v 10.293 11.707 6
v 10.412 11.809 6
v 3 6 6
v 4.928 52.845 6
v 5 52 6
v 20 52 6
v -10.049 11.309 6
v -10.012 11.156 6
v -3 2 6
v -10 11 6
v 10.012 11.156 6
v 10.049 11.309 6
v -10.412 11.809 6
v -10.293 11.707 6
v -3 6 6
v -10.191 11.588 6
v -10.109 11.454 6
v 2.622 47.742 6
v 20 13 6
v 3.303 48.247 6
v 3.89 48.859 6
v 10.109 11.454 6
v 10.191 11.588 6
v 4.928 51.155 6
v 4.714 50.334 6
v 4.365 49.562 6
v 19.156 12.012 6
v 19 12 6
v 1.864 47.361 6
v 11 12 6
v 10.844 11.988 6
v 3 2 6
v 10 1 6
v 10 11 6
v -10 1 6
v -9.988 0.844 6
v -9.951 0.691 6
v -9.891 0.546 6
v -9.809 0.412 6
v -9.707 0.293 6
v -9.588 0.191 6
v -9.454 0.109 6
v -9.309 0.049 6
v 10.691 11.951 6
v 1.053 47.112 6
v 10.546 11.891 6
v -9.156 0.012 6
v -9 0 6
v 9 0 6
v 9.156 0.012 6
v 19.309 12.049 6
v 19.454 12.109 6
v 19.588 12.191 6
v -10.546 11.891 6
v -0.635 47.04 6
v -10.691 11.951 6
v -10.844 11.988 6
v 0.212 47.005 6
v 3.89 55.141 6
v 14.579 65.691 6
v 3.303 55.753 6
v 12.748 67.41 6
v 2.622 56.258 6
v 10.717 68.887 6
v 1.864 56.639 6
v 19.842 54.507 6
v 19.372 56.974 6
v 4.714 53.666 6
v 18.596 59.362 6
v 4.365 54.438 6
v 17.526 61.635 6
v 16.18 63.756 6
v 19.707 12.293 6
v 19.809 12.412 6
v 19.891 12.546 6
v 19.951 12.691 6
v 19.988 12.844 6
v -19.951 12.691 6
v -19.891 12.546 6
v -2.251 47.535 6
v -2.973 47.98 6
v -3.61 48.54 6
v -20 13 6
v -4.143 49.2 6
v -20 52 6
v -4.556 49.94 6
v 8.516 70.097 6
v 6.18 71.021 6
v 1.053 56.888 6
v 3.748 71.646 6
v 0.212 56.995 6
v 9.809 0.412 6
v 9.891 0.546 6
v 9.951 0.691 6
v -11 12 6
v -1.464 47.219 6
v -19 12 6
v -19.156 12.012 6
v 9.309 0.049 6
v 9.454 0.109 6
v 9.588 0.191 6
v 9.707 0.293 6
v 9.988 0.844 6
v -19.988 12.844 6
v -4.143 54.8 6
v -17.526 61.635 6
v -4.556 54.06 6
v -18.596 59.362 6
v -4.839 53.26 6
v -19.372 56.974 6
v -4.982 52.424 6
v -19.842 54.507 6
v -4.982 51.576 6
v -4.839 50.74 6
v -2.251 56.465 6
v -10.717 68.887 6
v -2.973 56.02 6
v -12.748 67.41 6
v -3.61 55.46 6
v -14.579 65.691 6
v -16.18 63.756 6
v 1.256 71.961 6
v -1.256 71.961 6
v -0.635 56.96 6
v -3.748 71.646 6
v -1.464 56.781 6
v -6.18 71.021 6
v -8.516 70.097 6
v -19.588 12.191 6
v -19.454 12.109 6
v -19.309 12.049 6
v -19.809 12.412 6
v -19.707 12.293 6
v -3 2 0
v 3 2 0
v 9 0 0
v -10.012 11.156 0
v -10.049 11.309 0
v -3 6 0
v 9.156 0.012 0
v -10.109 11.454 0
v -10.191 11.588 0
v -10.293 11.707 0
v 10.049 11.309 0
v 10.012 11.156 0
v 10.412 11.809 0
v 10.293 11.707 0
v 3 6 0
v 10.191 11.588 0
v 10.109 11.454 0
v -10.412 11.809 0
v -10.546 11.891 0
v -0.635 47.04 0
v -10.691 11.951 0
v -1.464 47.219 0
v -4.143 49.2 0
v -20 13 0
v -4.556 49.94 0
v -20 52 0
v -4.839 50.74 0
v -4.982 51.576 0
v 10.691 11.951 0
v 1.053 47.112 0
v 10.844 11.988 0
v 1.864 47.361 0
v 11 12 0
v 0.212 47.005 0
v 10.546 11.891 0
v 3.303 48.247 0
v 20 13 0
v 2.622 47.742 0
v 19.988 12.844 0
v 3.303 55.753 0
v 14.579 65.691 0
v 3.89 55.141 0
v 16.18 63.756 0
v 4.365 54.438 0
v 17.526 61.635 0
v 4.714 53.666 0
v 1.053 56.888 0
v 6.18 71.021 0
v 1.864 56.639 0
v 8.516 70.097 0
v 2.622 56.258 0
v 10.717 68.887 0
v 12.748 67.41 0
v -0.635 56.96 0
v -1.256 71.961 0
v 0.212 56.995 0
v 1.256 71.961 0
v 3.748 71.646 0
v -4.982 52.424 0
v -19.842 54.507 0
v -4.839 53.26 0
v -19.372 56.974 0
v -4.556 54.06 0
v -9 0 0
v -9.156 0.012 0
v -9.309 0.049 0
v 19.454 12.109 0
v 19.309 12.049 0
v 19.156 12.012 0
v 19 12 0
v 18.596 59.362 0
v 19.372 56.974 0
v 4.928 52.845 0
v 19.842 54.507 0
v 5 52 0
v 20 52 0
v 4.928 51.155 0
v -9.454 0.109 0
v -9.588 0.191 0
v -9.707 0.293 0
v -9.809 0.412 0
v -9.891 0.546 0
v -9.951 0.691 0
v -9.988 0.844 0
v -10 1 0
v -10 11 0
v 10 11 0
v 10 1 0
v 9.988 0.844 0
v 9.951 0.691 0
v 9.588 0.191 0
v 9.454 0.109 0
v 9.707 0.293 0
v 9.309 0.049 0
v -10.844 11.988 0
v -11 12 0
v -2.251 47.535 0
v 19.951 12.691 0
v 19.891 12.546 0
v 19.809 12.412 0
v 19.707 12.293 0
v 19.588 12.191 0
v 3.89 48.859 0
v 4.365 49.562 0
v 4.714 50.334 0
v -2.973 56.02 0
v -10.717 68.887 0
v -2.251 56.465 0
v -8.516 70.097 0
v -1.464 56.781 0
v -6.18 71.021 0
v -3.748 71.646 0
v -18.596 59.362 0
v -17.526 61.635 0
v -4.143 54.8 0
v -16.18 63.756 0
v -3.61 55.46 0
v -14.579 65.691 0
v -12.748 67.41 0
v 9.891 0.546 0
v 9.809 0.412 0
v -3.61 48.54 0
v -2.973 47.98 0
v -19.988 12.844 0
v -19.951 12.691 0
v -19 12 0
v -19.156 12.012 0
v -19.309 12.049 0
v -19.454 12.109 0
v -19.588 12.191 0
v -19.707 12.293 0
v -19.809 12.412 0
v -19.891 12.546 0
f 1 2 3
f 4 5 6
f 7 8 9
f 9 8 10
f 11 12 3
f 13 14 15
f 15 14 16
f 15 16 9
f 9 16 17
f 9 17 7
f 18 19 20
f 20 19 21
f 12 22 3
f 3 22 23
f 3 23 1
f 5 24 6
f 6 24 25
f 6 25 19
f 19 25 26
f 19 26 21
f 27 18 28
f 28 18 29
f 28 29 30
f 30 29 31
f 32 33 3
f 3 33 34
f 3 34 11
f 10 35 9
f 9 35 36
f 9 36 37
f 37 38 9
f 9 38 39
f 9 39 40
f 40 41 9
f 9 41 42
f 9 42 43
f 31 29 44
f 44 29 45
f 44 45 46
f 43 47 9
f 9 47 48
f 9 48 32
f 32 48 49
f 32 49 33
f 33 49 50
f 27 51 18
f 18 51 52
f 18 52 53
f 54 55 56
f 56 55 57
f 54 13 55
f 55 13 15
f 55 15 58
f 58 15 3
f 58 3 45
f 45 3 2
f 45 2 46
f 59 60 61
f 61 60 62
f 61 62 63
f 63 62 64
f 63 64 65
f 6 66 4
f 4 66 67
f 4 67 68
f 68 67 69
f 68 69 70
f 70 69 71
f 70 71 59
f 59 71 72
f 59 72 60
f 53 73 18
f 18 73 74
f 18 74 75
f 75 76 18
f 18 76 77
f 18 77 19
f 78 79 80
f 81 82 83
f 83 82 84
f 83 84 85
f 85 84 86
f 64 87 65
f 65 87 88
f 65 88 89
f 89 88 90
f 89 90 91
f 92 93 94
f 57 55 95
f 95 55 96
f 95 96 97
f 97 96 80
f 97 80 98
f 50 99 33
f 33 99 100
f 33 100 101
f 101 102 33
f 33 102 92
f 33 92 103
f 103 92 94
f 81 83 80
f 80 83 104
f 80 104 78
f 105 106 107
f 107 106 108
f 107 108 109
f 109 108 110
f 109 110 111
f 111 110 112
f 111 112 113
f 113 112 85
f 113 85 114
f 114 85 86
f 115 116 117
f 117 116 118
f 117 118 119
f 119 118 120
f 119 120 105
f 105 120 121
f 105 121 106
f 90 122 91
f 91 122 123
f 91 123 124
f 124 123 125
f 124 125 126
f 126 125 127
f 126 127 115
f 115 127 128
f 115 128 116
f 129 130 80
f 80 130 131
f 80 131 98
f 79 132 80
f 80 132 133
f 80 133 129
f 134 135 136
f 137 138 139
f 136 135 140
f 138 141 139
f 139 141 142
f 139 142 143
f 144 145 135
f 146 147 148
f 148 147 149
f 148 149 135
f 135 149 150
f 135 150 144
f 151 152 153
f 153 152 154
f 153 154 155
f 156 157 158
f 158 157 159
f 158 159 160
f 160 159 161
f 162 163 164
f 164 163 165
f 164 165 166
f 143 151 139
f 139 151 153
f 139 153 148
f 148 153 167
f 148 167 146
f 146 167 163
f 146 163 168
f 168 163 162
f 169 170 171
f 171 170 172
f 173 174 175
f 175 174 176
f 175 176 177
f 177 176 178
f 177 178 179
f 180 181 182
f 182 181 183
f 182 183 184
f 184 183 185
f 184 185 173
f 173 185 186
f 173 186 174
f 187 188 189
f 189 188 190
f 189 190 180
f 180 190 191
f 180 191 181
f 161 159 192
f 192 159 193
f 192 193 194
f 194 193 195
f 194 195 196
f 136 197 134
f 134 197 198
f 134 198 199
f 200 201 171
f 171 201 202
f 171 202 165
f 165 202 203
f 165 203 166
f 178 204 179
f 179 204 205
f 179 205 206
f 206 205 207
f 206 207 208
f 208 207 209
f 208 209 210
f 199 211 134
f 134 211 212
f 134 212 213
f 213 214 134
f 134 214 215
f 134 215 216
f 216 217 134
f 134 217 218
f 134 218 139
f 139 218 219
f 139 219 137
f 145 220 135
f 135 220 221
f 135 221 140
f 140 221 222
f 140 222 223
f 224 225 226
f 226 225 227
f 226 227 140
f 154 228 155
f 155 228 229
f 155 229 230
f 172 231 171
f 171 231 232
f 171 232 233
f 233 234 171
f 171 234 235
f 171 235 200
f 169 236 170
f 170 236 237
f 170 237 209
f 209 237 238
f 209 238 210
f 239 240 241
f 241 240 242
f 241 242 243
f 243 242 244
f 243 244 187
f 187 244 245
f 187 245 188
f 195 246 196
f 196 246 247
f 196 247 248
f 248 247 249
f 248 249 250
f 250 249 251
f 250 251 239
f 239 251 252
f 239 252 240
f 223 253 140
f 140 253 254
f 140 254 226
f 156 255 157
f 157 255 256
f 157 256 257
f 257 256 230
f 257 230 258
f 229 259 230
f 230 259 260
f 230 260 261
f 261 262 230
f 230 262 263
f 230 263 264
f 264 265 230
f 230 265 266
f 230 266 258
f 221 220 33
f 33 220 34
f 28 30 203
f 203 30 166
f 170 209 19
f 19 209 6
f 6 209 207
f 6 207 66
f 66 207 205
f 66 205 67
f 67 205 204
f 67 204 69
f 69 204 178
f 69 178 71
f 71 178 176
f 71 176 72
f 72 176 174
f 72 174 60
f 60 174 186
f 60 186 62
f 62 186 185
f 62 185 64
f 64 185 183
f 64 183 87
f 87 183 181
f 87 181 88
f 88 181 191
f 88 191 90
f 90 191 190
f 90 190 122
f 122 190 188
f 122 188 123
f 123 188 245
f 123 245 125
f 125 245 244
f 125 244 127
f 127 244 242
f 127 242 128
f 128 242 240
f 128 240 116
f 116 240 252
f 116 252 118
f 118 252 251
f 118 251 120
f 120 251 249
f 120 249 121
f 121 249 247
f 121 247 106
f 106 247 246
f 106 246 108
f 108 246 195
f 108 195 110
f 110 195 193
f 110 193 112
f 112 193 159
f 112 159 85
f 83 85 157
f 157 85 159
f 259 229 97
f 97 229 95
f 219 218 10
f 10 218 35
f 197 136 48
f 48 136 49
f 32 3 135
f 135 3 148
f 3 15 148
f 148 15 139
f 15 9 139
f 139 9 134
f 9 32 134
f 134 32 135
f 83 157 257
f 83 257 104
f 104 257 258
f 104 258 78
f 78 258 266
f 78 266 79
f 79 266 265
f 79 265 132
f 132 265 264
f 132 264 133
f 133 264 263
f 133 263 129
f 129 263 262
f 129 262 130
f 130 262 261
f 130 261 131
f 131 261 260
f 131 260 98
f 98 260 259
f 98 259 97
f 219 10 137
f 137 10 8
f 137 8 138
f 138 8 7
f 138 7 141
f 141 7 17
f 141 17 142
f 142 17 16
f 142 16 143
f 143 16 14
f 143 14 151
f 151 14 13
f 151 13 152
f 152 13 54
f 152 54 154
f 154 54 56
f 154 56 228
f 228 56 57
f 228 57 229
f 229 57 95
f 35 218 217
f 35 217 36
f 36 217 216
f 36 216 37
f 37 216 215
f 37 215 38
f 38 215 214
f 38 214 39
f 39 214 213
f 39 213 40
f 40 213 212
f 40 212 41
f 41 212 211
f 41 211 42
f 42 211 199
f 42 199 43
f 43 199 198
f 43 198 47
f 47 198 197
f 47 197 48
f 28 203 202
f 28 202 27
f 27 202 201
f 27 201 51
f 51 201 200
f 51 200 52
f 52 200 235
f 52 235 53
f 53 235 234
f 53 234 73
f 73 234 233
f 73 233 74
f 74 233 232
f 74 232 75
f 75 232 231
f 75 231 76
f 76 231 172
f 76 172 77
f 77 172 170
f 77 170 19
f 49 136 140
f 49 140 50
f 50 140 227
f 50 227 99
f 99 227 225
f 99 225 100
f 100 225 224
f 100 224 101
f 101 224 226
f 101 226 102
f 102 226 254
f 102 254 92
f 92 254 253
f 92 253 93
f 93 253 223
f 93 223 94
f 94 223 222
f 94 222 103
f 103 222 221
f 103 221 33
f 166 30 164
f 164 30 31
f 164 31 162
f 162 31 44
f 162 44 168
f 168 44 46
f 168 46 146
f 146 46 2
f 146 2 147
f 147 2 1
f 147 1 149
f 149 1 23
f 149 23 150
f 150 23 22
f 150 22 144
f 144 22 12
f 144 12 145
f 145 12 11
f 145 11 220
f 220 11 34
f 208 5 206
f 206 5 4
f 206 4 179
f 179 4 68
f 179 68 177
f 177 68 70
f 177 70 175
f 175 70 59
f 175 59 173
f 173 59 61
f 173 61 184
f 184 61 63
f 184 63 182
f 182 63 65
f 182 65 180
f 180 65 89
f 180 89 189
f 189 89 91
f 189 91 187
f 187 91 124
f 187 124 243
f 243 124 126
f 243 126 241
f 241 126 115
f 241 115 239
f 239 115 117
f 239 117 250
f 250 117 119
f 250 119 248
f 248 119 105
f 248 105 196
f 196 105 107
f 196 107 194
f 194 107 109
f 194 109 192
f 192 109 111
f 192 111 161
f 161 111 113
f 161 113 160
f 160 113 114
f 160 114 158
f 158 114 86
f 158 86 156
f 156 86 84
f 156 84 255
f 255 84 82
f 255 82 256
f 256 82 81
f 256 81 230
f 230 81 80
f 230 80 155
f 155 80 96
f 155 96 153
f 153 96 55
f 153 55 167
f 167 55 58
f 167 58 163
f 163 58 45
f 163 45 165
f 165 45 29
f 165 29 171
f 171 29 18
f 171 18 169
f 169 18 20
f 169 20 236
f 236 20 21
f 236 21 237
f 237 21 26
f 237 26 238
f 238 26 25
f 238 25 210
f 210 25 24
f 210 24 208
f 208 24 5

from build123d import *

# Parameters (mm, degrees)
SKETCH1_W           = 6
SKETCH1_H           = 4
BOSS_EXTRUDE1_DEPTH = 6
FILLET1_R           = 1
SKETCH2_R           = 5
CUT_EXTRUDE1_DEPTH  = 75.966659256


with BuildPart() as part:
    # Sketch1 → Boss-Extrude1 (new body)
    with BuildSketch(Plane.XY):
        with BuildLine():
            Line((-10, 0), (10, 0))
            Line((10, 0), (10, 12))
            Line((10, 12), (20, 12))
            Line((20, 12), (20, 52))
            ThreePointArc((20, 52), (0, 72), (-20, 52))
            Line((-20, 52), (-20, 12))
            Line((-20, 12), (-10, 12))
            Line((-10, 12), (-10, 0))
        make_face()
        with Locations((0, 4)):
            Rectangle(SKETCH1_W, SKETCH1_H, mode=Mode.SUBTRACT)
    extrude(amount=BOSS_EXTRUDE1_DEPTH)

    # Fillet1
    fillet1_edges = [part.edges().sort_by_distance(p)[0] for p in [
        (10, 0, 3),
        (-10, 0, 3),
        (-10, 12, 3),
        (-20, 12, 3),
        (20, 12, 3),
        (10, 12, 3),
    ]]
    fillet(fillet1_edges, radius=FILLET1_R)

    # Sketch2 → Cut-Extrude1 (cut, through all)
    with BuildSketch(Plane.XY.offset(6)):
        with Locations((0, 52)):
            Circle(SKETCH2_R)
    extrude(amount=-CUT_EXTRUDE1_DEPTH, mode=Mode.SUBTRACT)


solid = part.part
